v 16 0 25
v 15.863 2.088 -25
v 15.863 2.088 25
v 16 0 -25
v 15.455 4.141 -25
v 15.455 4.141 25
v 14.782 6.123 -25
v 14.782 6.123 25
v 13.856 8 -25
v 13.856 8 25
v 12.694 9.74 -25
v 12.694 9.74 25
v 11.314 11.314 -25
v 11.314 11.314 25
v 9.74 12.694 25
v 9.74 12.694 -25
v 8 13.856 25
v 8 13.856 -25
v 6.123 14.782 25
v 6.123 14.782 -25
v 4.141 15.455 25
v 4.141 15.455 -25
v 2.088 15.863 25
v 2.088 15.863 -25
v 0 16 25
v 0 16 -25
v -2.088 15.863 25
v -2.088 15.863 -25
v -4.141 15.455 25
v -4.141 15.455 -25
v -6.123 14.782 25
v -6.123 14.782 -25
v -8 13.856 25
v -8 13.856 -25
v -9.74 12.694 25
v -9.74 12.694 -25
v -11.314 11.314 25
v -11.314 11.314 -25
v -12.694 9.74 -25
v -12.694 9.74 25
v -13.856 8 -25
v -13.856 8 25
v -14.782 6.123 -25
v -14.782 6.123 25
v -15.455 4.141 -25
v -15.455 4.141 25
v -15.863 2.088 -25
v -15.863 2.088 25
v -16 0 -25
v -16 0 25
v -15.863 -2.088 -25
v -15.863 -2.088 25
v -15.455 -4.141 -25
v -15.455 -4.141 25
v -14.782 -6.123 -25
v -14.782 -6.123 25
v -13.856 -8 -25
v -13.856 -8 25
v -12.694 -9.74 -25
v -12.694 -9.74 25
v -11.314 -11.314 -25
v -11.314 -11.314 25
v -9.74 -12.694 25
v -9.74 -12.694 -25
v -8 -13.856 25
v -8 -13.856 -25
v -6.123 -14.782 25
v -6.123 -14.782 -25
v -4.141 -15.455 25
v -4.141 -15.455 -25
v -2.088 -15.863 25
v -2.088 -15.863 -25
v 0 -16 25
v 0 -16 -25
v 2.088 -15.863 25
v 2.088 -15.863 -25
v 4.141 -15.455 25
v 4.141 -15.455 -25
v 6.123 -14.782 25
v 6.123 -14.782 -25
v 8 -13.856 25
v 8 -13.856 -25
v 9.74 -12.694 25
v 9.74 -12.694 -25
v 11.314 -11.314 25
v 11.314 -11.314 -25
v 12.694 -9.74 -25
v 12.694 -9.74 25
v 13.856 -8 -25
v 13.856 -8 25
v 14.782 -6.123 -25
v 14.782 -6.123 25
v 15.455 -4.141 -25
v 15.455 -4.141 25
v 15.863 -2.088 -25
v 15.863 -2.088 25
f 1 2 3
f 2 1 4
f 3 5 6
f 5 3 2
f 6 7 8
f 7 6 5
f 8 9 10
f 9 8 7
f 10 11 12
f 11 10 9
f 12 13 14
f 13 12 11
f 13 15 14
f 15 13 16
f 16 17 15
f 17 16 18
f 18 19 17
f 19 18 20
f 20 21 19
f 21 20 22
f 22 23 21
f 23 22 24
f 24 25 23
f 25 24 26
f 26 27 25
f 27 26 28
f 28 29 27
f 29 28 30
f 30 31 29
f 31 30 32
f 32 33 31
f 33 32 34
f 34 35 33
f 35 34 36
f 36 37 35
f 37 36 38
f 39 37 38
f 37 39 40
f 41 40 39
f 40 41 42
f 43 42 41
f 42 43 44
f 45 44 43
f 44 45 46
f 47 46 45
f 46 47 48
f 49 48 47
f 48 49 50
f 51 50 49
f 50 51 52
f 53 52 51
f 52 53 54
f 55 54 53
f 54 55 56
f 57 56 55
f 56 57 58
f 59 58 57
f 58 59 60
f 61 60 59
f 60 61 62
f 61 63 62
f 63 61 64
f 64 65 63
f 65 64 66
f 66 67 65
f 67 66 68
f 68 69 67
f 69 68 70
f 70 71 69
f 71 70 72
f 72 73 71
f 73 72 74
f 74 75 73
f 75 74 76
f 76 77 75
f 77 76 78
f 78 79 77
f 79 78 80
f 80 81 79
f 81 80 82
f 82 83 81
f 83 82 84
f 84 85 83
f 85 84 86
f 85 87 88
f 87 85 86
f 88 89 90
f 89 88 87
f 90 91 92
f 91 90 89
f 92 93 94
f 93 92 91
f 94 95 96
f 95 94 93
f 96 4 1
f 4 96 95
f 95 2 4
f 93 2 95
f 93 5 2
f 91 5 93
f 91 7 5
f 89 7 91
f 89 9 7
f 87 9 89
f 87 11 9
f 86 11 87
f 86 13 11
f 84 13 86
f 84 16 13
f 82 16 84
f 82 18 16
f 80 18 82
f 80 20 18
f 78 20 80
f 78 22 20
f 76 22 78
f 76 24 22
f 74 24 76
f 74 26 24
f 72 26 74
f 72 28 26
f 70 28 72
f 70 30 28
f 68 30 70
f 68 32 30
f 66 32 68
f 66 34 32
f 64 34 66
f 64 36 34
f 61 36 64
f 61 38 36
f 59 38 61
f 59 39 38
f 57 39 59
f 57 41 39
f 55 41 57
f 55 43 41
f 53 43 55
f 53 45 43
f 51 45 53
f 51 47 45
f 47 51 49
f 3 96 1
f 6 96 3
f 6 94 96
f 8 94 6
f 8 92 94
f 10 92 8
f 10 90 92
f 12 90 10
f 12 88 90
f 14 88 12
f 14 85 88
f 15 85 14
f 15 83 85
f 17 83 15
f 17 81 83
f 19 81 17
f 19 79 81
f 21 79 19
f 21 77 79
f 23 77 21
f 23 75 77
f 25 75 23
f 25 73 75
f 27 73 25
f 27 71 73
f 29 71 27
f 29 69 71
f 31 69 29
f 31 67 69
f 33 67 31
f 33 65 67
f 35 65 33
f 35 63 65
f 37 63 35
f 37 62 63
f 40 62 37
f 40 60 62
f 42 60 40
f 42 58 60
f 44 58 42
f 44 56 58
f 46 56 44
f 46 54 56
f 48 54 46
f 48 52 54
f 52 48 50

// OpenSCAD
// ========================================
// a cylinder with radius 16 mm and height 50 mm
// NeuroCAD canonical IR; dimensions are millimetres
// ========================================
$fn = 48;

cylinder(r=16, h=50, center=true);
